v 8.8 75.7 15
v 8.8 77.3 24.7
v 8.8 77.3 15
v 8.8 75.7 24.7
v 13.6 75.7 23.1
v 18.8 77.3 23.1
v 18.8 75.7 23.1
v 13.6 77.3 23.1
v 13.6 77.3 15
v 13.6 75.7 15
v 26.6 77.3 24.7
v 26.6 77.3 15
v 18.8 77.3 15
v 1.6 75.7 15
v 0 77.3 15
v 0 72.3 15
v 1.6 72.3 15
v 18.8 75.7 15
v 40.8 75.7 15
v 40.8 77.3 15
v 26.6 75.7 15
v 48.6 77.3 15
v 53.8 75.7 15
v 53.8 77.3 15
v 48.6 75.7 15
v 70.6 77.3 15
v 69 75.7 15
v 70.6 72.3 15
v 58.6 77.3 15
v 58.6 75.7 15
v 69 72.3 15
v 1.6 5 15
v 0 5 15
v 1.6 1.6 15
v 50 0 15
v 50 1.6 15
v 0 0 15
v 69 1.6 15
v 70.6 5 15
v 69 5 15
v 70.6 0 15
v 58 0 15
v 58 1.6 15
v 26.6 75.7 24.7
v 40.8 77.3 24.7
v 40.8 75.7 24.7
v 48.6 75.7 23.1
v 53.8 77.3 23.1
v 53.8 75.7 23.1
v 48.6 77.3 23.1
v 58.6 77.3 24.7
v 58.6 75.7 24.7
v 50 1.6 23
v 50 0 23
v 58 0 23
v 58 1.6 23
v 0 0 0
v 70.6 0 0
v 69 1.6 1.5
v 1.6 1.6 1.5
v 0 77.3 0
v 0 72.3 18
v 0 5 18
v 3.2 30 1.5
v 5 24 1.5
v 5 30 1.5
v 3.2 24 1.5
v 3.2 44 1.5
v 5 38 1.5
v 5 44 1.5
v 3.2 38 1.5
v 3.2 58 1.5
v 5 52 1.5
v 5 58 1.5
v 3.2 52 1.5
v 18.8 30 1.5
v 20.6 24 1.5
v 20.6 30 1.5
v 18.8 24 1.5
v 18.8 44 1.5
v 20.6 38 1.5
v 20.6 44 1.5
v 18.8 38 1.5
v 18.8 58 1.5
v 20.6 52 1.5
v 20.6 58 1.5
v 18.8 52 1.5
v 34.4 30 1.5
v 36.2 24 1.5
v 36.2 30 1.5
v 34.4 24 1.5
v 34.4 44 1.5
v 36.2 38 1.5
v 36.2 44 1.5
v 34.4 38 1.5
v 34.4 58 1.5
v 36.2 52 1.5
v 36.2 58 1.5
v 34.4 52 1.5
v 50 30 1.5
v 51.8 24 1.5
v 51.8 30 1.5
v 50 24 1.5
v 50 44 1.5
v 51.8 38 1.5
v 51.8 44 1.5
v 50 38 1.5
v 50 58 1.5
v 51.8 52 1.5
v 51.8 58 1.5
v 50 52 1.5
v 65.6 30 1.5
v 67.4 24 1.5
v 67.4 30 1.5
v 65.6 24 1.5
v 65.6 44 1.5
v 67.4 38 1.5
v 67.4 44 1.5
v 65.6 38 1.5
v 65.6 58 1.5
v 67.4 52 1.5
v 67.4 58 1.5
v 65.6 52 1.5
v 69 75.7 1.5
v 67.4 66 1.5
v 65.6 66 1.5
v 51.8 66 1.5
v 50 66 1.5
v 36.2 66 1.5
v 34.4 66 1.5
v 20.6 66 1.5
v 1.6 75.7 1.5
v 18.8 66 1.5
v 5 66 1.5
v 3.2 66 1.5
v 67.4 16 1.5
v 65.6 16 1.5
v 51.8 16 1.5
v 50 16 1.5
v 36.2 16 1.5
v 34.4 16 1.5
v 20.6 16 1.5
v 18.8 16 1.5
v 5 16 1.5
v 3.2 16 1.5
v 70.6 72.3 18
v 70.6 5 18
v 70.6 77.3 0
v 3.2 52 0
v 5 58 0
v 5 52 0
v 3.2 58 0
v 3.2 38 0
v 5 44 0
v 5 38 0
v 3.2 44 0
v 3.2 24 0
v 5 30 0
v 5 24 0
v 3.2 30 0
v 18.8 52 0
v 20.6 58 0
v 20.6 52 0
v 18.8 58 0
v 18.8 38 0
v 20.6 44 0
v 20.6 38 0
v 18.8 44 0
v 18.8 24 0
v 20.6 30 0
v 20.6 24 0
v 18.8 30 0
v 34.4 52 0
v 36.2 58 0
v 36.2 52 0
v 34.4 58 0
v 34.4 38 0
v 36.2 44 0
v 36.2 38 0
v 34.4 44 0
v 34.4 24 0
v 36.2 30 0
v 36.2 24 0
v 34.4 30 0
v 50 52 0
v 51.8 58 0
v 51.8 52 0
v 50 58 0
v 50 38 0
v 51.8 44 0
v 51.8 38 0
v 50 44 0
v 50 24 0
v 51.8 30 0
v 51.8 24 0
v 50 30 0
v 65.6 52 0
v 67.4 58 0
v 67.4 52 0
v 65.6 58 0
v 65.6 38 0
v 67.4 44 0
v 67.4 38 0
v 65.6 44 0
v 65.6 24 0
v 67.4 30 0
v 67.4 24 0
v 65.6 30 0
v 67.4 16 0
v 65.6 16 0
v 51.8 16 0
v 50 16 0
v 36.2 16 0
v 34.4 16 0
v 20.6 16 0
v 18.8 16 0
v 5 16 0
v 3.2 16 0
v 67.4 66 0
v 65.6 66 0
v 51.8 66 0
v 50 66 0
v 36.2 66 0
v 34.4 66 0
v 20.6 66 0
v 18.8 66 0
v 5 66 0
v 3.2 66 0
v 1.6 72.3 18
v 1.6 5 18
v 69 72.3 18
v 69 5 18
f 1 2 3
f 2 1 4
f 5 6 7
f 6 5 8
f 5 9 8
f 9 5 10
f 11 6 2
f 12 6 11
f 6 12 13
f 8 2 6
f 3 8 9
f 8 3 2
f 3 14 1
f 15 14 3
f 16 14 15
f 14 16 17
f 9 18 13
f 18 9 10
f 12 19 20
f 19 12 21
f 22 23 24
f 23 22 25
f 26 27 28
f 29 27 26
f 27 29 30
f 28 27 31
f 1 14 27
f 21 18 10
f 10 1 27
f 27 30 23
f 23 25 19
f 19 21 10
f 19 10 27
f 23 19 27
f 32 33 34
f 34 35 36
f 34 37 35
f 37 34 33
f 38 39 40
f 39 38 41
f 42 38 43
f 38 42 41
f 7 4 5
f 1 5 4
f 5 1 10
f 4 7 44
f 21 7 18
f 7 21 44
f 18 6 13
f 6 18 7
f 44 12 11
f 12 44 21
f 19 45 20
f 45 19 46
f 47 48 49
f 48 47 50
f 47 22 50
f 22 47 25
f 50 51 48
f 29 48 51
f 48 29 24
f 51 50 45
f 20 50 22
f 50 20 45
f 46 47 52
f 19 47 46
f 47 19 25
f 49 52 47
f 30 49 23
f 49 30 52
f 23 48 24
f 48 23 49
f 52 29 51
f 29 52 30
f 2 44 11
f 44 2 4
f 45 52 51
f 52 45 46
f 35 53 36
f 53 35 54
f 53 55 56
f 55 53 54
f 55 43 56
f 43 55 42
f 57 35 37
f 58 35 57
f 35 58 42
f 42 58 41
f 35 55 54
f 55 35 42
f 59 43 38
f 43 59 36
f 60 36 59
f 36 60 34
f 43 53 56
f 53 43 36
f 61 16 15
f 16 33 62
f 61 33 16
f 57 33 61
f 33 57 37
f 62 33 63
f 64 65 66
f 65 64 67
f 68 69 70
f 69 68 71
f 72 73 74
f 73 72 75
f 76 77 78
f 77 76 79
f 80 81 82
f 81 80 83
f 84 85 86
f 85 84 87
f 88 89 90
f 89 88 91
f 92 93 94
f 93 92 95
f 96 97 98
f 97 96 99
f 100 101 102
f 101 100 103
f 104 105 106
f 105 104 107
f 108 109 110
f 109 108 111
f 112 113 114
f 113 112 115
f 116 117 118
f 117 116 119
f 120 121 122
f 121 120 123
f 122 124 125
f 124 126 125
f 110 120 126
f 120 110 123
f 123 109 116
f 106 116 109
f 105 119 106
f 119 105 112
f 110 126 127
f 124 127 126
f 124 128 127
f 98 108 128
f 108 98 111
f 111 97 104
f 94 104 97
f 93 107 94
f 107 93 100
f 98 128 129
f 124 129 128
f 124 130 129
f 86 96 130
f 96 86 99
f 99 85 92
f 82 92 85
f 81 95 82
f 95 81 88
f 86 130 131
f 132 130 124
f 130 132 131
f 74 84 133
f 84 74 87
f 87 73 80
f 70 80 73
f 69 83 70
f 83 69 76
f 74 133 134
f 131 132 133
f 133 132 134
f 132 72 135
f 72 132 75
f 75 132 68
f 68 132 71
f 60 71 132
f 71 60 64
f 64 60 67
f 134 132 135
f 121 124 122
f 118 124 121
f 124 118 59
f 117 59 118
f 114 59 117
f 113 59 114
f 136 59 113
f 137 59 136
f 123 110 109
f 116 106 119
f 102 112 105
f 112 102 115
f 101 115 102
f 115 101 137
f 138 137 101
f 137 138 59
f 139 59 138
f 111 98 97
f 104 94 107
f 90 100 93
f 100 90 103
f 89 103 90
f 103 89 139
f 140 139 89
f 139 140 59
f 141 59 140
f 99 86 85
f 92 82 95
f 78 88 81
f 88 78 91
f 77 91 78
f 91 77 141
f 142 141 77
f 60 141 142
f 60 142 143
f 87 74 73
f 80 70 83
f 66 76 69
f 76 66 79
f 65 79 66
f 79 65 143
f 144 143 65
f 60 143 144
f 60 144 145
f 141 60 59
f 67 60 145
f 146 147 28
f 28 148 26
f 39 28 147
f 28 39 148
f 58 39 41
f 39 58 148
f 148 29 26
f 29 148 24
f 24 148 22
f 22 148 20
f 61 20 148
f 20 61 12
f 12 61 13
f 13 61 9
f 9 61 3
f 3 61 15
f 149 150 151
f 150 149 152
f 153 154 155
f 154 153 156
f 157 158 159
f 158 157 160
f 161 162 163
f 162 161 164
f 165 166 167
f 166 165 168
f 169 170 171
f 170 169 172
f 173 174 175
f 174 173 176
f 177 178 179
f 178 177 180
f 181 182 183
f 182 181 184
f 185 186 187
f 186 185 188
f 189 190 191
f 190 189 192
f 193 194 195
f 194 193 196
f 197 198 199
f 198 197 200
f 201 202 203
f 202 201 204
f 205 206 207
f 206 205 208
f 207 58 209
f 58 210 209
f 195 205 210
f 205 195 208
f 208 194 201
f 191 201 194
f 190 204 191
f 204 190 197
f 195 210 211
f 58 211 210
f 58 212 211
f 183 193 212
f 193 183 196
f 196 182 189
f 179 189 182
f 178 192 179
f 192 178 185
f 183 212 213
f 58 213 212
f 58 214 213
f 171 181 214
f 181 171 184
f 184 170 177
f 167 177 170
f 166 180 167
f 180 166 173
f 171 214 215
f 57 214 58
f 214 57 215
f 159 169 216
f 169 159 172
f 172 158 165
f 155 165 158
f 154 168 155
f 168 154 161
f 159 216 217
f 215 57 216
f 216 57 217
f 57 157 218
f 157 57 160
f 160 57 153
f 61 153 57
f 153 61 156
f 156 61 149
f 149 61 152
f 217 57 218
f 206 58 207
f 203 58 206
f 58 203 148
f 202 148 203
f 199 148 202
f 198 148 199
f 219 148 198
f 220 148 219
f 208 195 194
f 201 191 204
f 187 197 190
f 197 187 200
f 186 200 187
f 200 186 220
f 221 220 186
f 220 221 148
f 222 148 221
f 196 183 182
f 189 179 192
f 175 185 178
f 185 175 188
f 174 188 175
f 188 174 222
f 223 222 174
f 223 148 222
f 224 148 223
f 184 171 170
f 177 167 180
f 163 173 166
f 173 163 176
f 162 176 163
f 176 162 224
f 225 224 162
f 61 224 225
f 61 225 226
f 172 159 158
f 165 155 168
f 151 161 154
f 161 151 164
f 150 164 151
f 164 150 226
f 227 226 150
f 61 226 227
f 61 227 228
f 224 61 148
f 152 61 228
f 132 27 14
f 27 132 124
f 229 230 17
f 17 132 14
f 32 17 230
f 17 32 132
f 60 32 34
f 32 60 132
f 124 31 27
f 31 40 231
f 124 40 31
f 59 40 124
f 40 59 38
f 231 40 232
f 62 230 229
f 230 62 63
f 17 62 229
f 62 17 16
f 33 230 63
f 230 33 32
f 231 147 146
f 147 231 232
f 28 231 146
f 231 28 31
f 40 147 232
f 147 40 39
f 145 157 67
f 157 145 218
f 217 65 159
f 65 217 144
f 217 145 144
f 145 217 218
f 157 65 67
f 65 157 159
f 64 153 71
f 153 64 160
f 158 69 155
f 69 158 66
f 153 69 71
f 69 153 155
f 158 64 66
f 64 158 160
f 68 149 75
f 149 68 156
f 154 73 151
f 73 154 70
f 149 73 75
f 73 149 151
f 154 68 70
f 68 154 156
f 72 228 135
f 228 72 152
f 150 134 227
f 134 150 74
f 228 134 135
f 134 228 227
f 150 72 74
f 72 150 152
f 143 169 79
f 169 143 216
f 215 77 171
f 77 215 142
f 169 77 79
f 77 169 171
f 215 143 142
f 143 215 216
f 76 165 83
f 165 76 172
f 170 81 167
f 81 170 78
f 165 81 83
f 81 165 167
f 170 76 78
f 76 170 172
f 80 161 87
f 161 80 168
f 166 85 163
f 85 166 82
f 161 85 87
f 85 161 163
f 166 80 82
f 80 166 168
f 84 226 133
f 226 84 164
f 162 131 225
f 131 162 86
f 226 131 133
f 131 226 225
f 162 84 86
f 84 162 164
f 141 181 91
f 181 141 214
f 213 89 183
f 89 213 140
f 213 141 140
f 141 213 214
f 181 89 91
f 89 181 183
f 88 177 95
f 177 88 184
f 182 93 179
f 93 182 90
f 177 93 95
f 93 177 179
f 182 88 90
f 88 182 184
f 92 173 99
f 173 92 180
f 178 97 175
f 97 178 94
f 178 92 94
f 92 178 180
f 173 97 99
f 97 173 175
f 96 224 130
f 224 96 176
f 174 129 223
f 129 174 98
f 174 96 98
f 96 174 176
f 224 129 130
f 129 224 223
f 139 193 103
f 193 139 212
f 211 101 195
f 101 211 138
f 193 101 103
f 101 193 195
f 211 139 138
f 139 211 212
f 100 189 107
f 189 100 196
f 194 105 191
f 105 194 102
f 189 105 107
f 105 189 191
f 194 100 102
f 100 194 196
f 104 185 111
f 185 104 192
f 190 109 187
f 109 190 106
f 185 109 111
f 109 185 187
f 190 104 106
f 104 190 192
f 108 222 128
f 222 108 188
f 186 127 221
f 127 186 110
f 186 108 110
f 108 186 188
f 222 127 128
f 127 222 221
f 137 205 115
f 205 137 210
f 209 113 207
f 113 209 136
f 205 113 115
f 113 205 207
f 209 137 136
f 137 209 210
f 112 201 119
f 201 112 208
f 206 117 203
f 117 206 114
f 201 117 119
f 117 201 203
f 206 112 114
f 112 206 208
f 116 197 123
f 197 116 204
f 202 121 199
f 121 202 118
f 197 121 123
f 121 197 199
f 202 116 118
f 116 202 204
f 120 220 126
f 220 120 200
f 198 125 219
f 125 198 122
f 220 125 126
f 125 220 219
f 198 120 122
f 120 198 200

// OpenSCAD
difference() {
    union() {

        cube([70.6, 77.3, 1.5]);

        translate([0,0,0]) cube([70.6, 1.6, 15]);
        translate([0,75.7,0]) cube([70.6, 1.6, 15]);
        //translate([0,0,13.5]) cube([70.4, 77.3, 1.5]);

        translate([0,0,0]) cube([1.6, 77.3, 15]);
        translate([69,0,0]) cube([1.6, 77.3, 15]);

        translate([0,5,15]) cube([1.6, 67.3, 3]);
        translate([69,5,15]) cube([1.6, 67.3, 3]);

        translate([0,0,15]) {
            translate([50,0,0]) cube([8,1.6,8]);
            translate([-1.3,75.7,0]) {
                translate([10.1,0,0]) cube([4.8,1.6,8.1]);
                translate([20.1,0,0]) cube([7.8,1.6,8.1]);
                translate([42.1,0,0]) cube([7.8,1.6,8.1]);
                translate([55.1,0,0]) cube([4.8,1.6,8.1]);
                translate([10.1,0,8.1]) cube([17.8,1.6,1.6]);
                translate([42.1,0,8.1]) cube([17.8,1.6,1.6]);
            }
            
        }
    }

    translate([3.2,20,0]) {
        translate([0,-4,-3]) cube([1.8,8,5]);
        translate([0,10,-3]) cube([1.8,8,5]);
        translate([0,24,-3]) cube([1.8,8,5]);
        translate([0,38,-3]) cube([1.8,8,5]);
    }
    translate([18.8,20,0]) {
        translate([0,-4,-3]) cube([1.8,8,5]);
        translate([0,10,-3]) cube([1.8,8,5]);
        translate([0,24,-3]) cube([1.8,8,5]);
        translate([0,38,-3]) cube([1.8,8,5]);
    }
    translate([34.4,20,0]) {
        translate([0,-4,-3]) cube([1.8,8,5]);
        translate([0,10,-3]) cube([1.8,8,5]);
        translate([0,24,-3]) cube([1.8,8,5]);
        translate([0,38,-3]) cube([1.8,8,5]);
    }
    translate([50.0,20,0]) {
        translate([0,-4,-3]) cube([1.8,8,5]);
        translate([0,10,-3]) cube([1.8,8,5]);
        translate([0,24,-3]) cube([1.8,8,5]);
        translate([0,38,-3]) cube([1.8,8,5]);
    }
    translate([65.6,20,0]) {
        translate([0,-4,-3]) cube([1.8,8,5]);
        translate([0,10,-3]) cube([1.8,8,5]);
        translate([0,24,-3]) cube([1.8,8,5]);
        translate([0,38,-3]) cube([1.8,8,5]);
    }
}
